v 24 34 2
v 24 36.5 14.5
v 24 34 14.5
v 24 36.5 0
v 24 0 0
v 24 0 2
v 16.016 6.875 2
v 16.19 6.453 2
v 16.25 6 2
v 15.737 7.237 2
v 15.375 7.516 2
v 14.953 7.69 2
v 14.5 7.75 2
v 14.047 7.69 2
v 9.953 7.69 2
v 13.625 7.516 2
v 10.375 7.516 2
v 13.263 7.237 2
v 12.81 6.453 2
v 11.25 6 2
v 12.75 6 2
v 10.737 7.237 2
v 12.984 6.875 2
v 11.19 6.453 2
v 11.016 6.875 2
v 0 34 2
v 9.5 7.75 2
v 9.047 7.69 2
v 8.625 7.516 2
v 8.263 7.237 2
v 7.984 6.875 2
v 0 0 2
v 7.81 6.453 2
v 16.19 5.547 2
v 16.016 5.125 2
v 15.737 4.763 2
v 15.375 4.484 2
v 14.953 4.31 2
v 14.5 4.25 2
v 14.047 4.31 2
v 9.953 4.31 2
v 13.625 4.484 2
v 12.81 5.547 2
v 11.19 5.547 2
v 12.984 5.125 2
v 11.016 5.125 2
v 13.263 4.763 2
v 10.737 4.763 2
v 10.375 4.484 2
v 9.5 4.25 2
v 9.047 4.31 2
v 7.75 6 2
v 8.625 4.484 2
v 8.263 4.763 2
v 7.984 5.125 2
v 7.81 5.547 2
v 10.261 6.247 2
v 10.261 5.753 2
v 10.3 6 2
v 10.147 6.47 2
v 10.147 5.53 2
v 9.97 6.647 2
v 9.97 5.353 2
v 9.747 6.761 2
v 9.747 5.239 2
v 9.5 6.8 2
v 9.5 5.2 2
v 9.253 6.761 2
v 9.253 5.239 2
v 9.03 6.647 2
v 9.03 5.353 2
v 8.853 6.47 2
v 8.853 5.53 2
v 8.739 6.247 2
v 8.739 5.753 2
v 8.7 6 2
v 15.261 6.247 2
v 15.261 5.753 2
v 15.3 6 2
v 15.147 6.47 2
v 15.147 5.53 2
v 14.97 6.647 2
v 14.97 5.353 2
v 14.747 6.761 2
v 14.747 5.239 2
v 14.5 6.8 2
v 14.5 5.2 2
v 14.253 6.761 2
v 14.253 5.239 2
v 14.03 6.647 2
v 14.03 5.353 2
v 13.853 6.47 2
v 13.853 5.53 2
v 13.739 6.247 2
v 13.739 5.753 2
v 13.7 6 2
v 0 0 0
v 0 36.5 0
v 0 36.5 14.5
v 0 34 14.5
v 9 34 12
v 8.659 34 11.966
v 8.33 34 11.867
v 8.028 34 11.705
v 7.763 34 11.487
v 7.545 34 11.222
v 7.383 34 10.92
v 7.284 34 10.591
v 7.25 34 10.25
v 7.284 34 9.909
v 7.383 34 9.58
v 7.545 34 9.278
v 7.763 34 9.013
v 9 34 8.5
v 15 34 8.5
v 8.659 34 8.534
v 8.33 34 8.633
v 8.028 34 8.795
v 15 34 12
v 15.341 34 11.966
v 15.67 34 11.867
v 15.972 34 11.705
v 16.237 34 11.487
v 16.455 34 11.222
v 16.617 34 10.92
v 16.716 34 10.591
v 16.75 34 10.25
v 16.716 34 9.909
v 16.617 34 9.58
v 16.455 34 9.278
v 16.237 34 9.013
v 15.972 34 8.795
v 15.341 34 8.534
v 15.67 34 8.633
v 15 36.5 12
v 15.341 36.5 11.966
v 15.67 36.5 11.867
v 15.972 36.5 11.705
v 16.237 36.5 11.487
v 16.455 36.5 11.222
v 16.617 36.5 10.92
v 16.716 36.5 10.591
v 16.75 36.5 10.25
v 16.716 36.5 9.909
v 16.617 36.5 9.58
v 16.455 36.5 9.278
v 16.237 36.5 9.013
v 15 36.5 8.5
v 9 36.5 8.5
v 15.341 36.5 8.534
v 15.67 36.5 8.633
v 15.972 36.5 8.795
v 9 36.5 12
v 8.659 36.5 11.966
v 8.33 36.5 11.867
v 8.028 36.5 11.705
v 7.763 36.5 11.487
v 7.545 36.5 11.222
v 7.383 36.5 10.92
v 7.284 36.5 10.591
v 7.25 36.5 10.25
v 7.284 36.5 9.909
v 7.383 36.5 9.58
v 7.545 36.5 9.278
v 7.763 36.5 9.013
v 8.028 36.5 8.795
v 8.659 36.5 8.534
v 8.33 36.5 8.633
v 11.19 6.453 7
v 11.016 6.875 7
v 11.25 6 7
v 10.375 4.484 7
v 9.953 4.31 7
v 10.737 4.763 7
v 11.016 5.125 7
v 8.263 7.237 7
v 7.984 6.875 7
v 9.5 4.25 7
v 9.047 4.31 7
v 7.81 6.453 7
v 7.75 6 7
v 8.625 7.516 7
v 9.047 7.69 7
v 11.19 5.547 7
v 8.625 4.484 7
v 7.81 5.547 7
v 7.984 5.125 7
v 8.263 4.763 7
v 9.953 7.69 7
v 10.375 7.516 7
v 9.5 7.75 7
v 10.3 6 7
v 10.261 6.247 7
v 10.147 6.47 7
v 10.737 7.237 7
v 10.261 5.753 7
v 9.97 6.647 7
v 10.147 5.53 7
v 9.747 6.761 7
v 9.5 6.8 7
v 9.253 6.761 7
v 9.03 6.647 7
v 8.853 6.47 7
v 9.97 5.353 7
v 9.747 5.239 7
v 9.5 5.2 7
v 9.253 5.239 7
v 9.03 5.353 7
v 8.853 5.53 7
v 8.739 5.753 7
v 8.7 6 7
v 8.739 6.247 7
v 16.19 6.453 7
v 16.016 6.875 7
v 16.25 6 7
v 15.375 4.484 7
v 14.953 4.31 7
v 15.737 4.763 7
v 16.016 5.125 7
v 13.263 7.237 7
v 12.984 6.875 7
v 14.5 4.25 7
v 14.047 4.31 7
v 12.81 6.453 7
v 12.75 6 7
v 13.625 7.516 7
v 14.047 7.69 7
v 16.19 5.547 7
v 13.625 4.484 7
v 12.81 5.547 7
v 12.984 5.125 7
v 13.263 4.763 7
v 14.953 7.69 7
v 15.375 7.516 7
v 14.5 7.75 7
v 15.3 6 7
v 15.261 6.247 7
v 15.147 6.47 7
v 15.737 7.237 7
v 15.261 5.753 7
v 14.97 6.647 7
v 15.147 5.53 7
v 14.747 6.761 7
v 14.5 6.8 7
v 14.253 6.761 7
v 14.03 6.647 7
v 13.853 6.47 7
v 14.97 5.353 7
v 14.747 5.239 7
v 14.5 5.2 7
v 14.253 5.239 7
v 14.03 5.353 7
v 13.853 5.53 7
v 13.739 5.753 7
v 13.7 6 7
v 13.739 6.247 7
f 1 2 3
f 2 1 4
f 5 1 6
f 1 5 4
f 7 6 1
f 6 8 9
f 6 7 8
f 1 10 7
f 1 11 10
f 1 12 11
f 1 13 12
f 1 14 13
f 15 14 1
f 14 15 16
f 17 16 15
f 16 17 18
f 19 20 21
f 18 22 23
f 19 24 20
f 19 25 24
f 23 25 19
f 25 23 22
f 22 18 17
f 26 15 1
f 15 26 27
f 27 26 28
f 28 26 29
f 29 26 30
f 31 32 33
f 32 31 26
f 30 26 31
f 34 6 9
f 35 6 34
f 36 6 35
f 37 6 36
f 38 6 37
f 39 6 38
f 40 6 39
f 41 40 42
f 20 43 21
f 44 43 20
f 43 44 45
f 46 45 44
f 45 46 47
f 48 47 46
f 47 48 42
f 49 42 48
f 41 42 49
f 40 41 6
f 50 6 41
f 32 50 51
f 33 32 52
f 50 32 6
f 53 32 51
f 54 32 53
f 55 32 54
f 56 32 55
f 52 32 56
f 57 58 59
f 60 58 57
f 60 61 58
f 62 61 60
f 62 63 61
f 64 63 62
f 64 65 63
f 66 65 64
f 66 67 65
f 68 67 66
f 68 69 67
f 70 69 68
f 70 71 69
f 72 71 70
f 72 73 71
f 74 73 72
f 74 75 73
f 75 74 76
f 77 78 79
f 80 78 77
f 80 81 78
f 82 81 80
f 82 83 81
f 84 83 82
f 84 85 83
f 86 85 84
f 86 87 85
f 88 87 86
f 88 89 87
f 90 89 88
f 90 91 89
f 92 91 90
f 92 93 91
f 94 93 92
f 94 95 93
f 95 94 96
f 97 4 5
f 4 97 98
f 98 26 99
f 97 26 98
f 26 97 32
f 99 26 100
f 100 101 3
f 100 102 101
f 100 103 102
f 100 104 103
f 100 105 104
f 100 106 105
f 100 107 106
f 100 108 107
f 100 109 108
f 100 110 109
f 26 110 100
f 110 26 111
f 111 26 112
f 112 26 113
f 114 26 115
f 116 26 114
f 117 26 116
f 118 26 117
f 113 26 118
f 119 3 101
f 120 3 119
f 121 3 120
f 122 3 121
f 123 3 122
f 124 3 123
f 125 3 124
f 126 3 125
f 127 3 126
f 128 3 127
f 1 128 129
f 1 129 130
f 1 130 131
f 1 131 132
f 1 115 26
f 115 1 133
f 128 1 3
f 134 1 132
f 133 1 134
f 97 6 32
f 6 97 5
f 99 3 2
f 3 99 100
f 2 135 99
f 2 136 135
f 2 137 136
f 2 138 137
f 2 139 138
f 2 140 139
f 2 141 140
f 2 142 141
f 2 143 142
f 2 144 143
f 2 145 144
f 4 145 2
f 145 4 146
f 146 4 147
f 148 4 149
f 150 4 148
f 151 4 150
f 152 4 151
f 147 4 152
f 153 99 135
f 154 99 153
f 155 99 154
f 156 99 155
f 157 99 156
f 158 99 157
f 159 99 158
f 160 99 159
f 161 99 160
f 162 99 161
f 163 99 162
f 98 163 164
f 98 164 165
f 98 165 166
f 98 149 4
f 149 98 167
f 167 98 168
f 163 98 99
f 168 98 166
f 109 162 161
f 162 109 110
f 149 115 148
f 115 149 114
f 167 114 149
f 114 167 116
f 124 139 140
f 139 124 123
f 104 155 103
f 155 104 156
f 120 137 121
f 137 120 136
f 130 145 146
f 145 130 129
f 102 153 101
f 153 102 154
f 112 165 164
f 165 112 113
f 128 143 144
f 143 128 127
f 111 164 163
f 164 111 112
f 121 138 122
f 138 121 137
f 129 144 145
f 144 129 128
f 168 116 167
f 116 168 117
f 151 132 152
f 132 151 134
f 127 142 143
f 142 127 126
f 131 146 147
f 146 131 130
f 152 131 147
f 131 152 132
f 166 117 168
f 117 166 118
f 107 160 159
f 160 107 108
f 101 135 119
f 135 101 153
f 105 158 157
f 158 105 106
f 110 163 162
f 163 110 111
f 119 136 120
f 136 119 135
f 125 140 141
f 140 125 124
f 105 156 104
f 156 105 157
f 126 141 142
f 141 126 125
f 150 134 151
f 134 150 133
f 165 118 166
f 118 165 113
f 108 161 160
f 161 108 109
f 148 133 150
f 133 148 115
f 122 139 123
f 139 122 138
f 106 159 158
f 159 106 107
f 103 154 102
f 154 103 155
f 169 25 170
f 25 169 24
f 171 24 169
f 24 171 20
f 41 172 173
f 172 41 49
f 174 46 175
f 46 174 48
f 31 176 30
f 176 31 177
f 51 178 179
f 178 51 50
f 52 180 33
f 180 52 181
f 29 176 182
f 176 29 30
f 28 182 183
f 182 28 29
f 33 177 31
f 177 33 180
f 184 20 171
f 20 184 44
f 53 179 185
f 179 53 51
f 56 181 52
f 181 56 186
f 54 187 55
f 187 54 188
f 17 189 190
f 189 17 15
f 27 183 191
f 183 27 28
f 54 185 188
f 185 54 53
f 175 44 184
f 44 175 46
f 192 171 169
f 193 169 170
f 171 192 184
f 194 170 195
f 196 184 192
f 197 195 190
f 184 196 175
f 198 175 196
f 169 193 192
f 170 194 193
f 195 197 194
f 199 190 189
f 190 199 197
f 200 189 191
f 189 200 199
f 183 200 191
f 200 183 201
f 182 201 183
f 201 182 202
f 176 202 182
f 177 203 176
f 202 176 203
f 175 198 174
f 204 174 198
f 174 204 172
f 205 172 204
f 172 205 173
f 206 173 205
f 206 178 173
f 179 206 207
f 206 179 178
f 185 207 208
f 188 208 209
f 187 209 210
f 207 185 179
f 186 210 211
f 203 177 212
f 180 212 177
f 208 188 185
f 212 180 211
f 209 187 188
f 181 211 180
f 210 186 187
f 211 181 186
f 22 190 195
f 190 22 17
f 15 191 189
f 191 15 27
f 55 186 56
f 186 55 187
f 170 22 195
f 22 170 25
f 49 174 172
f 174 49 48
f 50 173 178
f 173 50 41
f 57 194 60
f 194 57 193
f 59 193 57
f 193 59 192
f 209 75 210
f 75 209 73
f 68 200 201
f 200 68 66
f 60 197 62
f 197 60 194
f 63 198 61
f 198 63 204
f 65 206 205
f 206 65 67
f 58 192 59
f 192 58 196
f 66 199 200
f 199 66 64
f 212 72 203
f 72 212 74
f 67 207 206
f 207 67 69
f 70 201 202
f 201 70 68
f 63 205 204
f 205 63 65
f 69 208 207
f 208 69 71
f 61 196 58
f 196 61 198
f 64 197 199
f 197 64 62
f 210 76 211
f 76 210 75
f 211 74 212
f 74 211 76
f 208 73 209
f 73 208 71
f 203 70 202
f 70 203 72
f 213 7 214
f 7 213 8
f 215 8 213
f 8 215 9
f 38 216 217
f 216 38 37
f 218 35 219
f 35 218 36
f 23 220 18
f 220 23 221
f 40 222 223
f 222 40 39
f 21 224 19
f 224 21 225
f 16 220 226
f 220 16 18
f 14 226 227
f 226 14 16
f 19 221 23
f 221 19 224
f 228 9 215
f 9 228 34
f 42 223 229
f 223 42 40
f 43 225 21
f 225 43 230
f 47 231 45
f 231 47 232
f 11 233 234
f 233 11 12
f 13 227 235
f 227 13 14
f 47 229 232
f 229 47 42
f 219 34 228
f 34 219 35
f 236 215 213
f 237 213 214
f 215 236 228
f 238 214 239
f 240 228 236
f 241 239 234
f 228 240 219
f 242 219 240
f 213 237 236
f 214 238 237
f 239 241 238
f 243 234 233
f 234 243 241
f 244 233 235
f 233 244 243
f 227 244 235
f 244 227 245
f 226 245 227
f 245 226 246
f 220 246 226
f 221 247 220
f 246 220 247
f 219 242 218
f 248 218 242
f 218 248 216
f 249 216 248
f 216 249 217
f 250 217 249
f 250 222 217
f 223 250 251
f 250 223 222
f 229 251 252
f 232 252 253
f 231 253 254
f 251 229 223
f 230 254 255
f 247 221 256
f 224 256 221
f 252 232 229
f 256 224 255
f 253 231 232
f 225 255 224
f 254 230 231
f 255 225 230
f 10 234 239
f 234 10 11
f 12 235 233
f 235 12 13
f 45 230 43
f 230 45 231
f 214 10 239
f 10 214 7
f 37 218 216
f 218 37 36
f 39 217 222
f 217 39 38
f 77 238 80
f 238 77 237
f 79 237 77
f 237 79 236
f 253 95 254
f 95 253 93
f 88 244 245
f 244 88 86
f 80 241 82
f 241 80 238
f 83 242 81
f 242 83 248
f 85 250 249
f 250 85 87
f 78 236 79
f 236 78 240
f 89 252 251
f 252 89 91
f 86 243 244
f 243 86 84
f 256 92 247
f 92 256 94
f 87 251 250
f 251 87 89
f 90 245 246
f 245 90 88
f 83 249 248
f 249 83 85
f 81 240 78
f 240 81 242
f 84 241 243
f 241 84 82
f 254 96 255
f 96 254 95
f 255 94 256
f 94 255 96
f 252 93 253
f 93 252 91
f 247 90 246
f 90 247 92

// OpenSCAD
// ============================================================
// USB-C PD Mount — Minimal Fit Test
//
// Reproduces ONLY the USB-C board mount from electronics_enclosure.scad,
// at the CORRECTED port height (measured: top of port 5 mm above PCB bottom):
//   • 2× M2 standoffs, 5 mm apart, 5 mm tall — the board screws onto these
//   • back wall with the USB-C stadium cutout at the corrected height
//   • a short "ceiling lip" above the cutout = the enclosure top plate, so
//     the port sits flush under it exactly like in the real enclosure
//
// TEST: screw the USB-C PD board onto the 2 standoffs, connector facing the
// wall. The connector should poke cleanly through the stadium hole, its top
// edge meeting the underside of the ceiling lip. If the port is still too
// low/high, change usbc_port_top_above_board here AND in the enclosure.
//
// Printer: Bambu Lab A1 Mini. Print flat (base on bed), no supports.
// ============================================================

// ---- Parameters mirrored from electronics_enclosure.scad ----
usbc_w   =  9.5;   // mm — port opening width
usbc_h   =  3.5;   // mm — port opening height (stadium r = h/2 = 1.75)
usbc_port_top_above_board = 5.0;  // mm — MEASURED: top of port above PCB bottom face

usbc_bmx =  5.0;   // mm — board mounting hole spacing
usbc_bod =  3.5;   // mm — standoff outer ⌀
usbc_bsd =  1.6;   // mm — M2 self-tap pilot

so_h     =  5.0;   // mm — standoff height (= esp_h in enclosure)
wall_t   =  2.5;   // mm — enclosure wall thickness
ceil_lip =  2.5;   // mm — top-plate thickness above the cutout (= floor_t)

usbc_hole_to_edge = 28.0;  // mm — standoff centre → connector edge (= wall inner face)

// ---- Test-piece params ----
base_t   =  2.0;   // mm — base plate thickness
margin   =  6.0;   // mm — base material in front of the standoffs
total_w  = 24.0;   // mm — X width (room for 9.5 mm hole + 5 mm standoffs + walls)

eps = 0.01;

// ---- Derived ----
base_d   = usbc_hole_to_edge + margin;                        // 34 mm — base depth (Y)
board_z  = base_t + so_h;                                     // 7 mm — PCB seating plane
hole_z   = board_z + usbc_port_top_above_board - usbc_h/2;    // 10.25 mm — cutout centre
wall_h   = hole_z + usbc_h/2 + ceil_lip;                      // 14.5 mm — wall total height

so_y     = margin;                                            // standoff Y (= base_d − hole_to_edge)
so_x1    = total_w/2 - usbc_bmx/2;                            // 9.5 mm
so_x2    = total_w/2 + usbc_bmx/2;                            // 14.5 mm

// ============================================================
// Stadium profile (USB-C shape) — 2D, XY plane, centred at origin
// ============================================================
module usbc_stadium() {
    r = usbc_h / 2;
    hull() {
        translate([-(usbc_w/2 - r), 0]) circle(r=r, $fn=32);
        translate([ (usbc_w/2 - r), 0]) circle(r=r, $fn=32);
    }
}

// ============================================================
// MODEL
// ============================================================
difference() {
    union() {
        // Base plate (board area)
        cube([total_w, base_d, base_t]);
        // Back wall at the far +Y edge (inner face at Y = base_d)
        translate([0, base_d, 0])
            cube([total_w, wall_t, wall_h]);
    }
    // USB-C stadium hole through the wall (+Y) at the corrected height
    translate([total_w/2, base_d - eps, hole_z])
    rotate([-90, 0, 0])
    linear_extrude(height = wall_t + 2*eps)
        usbc_stadium();
}

// 2 standoffs for the USB-C board (usbc_hole_to_edge from wall inner face)
for (px = [so_x1, so_x2]) {
    difference() {
        translate([px, so_y, base_t])
            cylinder(d=usbc_bod, h=so_h, $fn=24);
        translate([px, so_y, -eps])
            cylinder(d=usbc_bsd, h=base_t + so_h + eps*2, $fn=20);
    }
}

// ============================================================
// KEY DIMENSIONS
// footprint   : 24 × 36.5 × 14.5 mm (incl. wall)
// standoffs   : 5 mm apart, 5 mm tall, ⌀3.5 mm boss, M2 pilot ⌀1.6 mm
// board plane : z = 7 mm (top of standoffs)
// cutout      : 9.5 × 3.5 mm stadium, centre z = 10.25 mm, top z = 12 mm
//               (= board plane + 5 mm; 2.5 mm ceiling lip above)
// wall        : 2.5 mm thick, 28 mm behind the standoffs
// ============================================================
